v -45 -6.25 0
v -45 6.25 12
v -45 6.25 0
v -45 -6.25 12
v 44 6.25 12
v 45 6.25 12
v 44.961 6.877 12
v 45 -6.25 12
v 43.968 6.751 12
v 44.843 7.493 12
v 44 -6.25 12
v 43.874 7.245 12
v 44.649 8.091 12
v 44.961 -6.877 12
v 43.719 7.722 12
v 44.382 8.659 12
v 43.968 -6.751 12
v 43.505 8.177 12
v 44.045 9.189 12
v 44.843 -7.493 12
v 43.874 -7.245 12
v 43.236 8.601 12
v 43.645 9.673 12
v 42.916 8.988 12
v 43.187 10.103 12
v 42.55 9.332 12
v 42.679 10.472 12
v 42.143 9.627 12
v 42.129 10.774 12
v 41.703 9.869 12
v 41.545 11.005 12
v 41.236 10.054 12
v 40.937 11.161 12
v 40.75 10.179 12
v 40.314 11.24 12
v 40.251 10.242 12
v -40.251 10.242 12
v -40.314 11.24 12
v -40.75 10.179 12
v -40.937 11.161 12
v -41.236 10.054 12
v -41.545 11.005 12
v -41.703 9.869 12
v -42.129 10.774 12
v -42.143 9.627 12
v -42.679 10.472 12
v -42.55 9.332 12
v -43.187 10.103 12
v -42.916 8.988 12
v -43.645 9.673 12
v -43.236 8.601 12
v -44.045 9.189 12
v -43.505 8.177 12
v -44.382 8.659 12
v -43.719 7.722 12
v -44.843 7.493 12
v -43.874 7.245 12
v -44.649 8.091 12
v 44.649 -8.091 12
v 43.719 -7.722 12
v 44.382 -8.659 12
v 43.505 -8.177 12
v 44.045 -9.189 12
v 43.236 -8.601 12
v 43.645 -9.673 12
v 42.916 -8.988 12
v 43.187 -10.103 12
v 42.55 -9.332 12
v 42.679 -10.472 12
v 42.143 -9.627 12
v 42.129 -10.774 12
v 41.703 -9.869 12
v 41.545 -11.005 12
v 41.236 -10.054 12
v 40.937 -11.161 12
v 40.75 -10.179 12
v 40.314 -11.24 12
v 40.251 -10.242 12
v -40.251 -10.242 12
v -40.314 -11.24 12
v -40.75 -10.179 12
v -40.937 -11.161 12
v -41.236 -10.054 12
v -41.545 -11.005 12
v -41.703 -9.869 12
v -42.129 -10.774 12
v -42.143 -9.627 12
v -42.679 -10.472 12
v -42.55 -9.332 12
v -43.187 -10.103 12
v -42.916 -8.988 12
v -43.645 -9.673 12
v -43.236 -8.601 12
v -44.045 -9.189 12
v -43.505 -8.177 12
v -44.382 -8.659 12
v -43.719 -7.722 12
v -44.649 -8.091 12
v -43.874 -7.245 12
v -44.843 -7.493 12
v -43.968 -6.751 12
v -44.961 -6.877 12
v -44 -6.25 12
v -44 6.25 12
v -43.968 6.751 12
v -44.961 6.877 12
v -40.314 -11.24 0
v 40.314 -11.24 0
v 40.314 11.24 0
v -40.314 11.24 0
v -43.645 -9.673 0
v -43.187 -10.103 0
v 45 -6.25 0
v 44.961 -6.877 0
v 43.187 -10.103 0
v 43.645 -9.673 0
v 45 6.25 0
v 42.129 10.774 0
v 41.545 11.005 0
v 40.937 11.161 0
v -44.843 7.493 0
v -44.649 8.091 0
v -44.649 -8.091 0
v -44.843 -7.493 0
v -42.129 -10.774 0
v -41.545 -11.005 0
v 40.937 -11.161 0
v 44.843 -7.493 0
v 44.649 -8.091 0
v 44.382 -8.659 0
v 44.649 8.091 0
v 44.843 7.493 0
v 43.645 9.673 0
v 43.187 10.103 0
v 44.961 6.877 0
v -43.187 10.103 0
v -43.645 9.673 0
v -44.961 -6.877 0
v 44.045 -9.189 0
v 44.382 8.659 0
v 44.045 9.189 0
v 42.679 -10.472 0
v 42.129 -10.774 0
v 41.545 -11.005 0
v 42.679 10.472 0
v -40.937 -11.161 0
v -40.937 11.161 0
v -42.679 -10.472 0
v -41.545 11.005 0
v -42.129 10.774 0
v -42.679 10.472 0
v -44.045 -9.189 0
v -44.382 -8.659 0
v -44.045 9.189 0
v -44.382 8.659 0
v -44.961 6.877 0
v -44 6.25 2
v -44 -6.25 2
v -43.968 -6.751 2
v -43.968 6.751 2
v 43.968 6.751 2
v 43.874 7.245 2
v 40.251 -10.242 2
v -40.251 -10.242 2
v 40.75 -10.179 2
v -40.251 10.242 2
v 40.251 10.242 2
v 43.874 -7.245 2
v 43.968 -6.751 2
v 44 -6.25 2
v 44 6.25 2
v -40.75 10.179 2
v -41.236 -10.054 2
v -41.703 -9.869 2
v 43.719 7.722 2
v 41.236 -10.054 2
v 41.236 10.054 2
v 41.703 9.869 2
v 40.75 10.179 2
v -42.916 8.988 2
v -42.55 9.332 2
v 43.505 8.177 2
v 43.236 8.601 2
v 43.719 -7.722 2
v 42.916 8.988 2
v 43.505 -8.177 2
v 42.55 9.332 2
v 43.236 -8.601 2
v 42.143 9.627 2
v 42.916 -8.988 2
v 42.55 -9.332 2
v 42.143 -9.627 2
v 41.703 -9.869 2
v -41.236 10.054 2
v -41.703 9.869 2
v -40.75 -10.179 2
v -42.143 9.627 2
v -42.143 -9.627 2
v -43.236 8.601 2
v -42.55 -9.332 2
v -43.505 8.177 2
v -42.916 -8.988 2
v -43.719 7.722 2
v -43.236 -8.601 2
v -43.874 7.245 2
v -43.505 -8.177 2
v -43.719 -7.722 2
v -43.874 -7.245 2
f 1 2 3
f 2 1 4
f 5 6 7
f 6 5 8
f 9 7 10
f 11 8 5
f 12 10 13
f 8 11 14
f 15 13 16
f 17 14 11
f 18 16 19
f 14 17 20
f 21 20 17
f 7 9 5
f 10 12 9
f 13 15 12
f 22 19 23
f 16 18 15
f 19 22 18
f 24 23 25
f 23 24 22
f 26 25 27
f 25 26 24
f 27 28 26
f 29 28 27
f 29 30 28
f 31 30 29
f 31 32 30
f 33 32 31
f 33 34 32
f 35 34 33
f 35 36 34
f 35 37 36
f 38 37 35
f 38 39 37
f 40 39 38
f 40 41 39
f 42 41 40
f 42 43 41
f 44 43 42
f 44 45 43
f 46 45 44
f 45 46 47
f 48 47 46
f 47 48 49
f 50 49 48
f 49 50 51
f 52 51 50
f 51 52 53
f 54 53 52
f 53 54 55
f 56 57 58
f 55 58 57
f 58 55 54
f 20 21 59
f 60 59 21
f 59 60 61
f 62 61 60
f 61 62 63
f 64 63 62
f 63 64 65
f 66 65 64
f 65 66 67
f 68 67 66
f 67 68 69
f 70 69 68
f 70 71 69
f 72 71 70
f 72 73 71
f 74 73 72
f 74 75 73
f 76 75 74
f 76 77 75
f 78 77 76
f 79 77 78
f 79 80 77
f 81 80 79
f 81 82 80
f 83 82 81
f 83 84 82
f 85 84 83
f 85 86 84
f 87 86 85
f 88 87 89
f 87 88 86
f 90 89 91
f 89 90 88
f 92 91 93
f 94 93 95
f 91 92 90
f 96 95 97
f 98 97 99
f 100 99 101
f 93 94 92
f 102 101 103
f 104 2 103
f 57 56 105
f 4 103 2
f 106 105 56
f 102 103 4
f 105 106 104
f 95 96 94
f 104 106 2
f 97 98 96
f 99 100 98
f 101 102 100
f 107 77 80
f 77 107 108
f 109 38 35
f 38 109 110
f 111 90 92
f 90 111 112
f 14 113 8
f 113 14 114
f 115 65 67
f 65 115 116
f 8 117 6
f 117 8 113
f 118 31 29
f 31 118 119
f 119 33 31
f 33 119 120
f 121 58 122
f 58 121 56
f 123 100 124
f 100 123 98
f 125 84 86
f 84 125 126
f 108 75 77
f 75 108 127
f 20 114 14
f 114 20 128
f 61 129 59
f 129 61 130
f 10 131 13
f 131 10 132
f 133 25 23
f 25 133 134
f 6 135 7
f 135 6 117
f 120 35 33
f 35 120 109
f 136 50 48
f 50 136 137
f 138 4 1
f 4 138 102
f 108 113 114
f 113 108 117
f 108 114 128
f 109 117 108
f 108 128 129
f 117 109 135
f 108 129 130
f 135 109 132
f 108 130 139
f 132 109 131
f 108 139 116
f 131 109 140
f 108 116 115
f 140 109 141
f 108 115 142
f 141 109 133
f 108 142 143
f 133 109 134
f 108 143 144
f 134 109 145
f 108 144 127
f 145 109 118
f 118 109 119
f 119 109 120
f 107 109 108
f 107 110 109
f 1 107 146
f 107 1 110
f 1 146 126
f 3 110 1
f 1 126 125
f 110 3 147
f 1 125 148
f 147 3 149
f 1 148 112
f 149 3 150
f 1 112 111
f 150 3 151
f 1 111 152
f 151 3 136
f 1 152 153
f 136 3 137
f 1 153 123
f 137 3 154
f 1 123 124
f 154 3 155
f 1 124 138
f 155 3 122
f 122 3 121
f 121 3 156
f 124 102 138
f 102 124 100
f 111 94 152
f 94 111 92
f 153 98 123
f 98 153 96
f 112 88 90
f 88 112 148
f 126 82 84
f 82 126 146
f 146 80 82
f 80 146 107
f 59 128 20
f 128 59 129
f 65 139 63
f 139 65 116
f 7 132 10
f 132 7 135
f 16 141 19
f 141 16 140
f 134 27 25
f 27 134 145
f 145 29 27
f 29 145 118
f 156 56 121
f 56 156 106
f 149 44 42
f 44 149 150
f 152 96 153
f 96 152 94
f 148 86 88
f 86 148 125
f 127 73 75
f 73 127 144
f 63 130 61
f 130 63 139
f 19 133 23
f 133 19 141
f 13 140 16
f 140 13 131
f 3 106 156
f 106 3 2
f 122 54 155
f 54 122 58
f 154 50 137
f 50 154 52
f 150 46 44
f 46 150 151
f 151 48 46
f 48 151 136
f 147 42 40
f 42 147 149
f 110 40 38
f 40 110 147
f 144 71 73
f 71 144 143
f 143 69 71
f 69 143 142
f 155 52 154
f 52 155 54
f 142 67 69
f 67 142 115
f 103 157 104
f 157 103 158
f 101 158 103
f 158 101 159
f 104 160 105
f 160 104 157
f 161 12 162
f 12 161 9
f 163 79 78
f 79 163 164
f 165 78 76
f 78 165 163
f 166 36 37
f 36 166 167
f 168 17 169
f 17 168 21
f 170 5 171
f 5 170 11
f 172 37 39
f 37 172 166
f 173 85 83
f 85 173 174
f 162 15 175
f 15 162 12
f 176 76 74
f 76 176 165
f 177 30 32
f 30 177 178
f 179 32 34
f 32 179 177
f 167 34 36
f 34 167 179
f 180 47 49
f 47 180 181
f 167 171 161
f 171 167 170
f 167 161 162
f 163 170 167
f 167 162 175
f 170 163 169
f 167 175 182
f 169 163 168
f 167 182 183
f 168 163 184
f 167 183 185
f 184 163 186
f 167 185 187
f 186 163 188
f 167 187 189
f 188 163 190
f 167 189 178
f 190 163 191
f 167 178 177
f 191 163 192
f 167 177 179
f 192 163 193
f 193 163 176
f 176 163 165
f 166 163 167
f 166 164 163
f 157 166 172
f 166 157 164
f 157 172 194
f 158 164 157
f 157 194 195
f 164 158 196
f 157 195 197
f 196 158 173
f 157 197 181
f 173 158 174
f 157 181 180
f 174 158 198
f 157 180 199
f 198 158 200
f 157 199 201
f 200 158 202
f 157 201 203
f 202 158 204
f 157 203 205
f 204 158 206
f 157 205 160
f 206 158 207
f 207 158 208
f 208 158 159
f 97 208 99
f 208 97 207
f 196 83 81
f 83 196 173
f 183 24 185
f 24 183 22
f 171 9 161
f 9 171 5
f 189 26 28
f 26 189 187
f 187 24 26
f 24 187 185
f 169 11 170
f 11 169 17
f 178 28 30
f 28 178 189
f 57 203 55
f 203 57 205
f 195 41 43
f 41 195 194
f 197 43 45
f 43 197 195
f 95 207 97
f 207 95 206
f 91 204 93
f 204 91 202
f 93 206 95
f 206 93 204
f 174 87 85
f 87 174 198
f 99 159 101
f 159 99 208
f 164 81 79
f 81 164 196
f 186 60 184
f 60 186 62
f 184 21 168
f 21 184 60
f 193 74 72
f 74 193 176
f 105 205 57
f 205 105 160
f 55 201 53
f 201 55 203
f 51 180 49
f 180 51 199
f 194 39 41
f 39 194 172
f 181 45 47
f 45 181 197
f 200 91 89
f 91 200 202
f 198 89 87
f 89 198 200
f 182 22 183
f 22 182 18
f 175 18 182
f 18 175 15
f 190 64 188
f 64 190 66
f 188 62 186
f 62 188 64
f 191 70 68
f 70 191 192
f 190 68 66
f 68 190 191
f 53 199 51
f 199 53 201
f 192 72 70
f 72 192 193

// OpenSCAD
$fn = 50;


difference() {
	union() {
		hull() {
			translate(v = [-40.0000000000, 6.2500000000, 0]) {
				cylinder(h = 12, r = 5);
			}
			translate(v = [40.0000000000, 6.2500000000, 0]) {
				cylinder(h = 12, r = 5);
			}
			translate(v = [-40.0000000000, -6.2500000000, 0]) {
				cylinder(h = 12, r = 5);
			}
			translate(v = [40.0000000000, -6.2500000000, 0]) {
				cylinder(h = 12, r = 5);
			}
		}
	}
	union() {
		translate(v = [0, 0, 2]) {
			hull() {
				translate(v = [-40.0000000000, 6.2500000000, 0]) {
					cylinder(h = 10, r = 4);
				}
				translate(v = [40.0000000000, 6.2500000000, 0]) {
					cylinder(h = 10, r = 4);
				}
				translate(v = [-40.0000000000, -6.2500000000, 0]) {
					cylinder(h = 10, r = 4);
				}
				translate(v = [40.0000000000, -6.2500000000, 0]) {
					cylinder(h = 10, r = 4);
				}
			}
		}
	}
}
